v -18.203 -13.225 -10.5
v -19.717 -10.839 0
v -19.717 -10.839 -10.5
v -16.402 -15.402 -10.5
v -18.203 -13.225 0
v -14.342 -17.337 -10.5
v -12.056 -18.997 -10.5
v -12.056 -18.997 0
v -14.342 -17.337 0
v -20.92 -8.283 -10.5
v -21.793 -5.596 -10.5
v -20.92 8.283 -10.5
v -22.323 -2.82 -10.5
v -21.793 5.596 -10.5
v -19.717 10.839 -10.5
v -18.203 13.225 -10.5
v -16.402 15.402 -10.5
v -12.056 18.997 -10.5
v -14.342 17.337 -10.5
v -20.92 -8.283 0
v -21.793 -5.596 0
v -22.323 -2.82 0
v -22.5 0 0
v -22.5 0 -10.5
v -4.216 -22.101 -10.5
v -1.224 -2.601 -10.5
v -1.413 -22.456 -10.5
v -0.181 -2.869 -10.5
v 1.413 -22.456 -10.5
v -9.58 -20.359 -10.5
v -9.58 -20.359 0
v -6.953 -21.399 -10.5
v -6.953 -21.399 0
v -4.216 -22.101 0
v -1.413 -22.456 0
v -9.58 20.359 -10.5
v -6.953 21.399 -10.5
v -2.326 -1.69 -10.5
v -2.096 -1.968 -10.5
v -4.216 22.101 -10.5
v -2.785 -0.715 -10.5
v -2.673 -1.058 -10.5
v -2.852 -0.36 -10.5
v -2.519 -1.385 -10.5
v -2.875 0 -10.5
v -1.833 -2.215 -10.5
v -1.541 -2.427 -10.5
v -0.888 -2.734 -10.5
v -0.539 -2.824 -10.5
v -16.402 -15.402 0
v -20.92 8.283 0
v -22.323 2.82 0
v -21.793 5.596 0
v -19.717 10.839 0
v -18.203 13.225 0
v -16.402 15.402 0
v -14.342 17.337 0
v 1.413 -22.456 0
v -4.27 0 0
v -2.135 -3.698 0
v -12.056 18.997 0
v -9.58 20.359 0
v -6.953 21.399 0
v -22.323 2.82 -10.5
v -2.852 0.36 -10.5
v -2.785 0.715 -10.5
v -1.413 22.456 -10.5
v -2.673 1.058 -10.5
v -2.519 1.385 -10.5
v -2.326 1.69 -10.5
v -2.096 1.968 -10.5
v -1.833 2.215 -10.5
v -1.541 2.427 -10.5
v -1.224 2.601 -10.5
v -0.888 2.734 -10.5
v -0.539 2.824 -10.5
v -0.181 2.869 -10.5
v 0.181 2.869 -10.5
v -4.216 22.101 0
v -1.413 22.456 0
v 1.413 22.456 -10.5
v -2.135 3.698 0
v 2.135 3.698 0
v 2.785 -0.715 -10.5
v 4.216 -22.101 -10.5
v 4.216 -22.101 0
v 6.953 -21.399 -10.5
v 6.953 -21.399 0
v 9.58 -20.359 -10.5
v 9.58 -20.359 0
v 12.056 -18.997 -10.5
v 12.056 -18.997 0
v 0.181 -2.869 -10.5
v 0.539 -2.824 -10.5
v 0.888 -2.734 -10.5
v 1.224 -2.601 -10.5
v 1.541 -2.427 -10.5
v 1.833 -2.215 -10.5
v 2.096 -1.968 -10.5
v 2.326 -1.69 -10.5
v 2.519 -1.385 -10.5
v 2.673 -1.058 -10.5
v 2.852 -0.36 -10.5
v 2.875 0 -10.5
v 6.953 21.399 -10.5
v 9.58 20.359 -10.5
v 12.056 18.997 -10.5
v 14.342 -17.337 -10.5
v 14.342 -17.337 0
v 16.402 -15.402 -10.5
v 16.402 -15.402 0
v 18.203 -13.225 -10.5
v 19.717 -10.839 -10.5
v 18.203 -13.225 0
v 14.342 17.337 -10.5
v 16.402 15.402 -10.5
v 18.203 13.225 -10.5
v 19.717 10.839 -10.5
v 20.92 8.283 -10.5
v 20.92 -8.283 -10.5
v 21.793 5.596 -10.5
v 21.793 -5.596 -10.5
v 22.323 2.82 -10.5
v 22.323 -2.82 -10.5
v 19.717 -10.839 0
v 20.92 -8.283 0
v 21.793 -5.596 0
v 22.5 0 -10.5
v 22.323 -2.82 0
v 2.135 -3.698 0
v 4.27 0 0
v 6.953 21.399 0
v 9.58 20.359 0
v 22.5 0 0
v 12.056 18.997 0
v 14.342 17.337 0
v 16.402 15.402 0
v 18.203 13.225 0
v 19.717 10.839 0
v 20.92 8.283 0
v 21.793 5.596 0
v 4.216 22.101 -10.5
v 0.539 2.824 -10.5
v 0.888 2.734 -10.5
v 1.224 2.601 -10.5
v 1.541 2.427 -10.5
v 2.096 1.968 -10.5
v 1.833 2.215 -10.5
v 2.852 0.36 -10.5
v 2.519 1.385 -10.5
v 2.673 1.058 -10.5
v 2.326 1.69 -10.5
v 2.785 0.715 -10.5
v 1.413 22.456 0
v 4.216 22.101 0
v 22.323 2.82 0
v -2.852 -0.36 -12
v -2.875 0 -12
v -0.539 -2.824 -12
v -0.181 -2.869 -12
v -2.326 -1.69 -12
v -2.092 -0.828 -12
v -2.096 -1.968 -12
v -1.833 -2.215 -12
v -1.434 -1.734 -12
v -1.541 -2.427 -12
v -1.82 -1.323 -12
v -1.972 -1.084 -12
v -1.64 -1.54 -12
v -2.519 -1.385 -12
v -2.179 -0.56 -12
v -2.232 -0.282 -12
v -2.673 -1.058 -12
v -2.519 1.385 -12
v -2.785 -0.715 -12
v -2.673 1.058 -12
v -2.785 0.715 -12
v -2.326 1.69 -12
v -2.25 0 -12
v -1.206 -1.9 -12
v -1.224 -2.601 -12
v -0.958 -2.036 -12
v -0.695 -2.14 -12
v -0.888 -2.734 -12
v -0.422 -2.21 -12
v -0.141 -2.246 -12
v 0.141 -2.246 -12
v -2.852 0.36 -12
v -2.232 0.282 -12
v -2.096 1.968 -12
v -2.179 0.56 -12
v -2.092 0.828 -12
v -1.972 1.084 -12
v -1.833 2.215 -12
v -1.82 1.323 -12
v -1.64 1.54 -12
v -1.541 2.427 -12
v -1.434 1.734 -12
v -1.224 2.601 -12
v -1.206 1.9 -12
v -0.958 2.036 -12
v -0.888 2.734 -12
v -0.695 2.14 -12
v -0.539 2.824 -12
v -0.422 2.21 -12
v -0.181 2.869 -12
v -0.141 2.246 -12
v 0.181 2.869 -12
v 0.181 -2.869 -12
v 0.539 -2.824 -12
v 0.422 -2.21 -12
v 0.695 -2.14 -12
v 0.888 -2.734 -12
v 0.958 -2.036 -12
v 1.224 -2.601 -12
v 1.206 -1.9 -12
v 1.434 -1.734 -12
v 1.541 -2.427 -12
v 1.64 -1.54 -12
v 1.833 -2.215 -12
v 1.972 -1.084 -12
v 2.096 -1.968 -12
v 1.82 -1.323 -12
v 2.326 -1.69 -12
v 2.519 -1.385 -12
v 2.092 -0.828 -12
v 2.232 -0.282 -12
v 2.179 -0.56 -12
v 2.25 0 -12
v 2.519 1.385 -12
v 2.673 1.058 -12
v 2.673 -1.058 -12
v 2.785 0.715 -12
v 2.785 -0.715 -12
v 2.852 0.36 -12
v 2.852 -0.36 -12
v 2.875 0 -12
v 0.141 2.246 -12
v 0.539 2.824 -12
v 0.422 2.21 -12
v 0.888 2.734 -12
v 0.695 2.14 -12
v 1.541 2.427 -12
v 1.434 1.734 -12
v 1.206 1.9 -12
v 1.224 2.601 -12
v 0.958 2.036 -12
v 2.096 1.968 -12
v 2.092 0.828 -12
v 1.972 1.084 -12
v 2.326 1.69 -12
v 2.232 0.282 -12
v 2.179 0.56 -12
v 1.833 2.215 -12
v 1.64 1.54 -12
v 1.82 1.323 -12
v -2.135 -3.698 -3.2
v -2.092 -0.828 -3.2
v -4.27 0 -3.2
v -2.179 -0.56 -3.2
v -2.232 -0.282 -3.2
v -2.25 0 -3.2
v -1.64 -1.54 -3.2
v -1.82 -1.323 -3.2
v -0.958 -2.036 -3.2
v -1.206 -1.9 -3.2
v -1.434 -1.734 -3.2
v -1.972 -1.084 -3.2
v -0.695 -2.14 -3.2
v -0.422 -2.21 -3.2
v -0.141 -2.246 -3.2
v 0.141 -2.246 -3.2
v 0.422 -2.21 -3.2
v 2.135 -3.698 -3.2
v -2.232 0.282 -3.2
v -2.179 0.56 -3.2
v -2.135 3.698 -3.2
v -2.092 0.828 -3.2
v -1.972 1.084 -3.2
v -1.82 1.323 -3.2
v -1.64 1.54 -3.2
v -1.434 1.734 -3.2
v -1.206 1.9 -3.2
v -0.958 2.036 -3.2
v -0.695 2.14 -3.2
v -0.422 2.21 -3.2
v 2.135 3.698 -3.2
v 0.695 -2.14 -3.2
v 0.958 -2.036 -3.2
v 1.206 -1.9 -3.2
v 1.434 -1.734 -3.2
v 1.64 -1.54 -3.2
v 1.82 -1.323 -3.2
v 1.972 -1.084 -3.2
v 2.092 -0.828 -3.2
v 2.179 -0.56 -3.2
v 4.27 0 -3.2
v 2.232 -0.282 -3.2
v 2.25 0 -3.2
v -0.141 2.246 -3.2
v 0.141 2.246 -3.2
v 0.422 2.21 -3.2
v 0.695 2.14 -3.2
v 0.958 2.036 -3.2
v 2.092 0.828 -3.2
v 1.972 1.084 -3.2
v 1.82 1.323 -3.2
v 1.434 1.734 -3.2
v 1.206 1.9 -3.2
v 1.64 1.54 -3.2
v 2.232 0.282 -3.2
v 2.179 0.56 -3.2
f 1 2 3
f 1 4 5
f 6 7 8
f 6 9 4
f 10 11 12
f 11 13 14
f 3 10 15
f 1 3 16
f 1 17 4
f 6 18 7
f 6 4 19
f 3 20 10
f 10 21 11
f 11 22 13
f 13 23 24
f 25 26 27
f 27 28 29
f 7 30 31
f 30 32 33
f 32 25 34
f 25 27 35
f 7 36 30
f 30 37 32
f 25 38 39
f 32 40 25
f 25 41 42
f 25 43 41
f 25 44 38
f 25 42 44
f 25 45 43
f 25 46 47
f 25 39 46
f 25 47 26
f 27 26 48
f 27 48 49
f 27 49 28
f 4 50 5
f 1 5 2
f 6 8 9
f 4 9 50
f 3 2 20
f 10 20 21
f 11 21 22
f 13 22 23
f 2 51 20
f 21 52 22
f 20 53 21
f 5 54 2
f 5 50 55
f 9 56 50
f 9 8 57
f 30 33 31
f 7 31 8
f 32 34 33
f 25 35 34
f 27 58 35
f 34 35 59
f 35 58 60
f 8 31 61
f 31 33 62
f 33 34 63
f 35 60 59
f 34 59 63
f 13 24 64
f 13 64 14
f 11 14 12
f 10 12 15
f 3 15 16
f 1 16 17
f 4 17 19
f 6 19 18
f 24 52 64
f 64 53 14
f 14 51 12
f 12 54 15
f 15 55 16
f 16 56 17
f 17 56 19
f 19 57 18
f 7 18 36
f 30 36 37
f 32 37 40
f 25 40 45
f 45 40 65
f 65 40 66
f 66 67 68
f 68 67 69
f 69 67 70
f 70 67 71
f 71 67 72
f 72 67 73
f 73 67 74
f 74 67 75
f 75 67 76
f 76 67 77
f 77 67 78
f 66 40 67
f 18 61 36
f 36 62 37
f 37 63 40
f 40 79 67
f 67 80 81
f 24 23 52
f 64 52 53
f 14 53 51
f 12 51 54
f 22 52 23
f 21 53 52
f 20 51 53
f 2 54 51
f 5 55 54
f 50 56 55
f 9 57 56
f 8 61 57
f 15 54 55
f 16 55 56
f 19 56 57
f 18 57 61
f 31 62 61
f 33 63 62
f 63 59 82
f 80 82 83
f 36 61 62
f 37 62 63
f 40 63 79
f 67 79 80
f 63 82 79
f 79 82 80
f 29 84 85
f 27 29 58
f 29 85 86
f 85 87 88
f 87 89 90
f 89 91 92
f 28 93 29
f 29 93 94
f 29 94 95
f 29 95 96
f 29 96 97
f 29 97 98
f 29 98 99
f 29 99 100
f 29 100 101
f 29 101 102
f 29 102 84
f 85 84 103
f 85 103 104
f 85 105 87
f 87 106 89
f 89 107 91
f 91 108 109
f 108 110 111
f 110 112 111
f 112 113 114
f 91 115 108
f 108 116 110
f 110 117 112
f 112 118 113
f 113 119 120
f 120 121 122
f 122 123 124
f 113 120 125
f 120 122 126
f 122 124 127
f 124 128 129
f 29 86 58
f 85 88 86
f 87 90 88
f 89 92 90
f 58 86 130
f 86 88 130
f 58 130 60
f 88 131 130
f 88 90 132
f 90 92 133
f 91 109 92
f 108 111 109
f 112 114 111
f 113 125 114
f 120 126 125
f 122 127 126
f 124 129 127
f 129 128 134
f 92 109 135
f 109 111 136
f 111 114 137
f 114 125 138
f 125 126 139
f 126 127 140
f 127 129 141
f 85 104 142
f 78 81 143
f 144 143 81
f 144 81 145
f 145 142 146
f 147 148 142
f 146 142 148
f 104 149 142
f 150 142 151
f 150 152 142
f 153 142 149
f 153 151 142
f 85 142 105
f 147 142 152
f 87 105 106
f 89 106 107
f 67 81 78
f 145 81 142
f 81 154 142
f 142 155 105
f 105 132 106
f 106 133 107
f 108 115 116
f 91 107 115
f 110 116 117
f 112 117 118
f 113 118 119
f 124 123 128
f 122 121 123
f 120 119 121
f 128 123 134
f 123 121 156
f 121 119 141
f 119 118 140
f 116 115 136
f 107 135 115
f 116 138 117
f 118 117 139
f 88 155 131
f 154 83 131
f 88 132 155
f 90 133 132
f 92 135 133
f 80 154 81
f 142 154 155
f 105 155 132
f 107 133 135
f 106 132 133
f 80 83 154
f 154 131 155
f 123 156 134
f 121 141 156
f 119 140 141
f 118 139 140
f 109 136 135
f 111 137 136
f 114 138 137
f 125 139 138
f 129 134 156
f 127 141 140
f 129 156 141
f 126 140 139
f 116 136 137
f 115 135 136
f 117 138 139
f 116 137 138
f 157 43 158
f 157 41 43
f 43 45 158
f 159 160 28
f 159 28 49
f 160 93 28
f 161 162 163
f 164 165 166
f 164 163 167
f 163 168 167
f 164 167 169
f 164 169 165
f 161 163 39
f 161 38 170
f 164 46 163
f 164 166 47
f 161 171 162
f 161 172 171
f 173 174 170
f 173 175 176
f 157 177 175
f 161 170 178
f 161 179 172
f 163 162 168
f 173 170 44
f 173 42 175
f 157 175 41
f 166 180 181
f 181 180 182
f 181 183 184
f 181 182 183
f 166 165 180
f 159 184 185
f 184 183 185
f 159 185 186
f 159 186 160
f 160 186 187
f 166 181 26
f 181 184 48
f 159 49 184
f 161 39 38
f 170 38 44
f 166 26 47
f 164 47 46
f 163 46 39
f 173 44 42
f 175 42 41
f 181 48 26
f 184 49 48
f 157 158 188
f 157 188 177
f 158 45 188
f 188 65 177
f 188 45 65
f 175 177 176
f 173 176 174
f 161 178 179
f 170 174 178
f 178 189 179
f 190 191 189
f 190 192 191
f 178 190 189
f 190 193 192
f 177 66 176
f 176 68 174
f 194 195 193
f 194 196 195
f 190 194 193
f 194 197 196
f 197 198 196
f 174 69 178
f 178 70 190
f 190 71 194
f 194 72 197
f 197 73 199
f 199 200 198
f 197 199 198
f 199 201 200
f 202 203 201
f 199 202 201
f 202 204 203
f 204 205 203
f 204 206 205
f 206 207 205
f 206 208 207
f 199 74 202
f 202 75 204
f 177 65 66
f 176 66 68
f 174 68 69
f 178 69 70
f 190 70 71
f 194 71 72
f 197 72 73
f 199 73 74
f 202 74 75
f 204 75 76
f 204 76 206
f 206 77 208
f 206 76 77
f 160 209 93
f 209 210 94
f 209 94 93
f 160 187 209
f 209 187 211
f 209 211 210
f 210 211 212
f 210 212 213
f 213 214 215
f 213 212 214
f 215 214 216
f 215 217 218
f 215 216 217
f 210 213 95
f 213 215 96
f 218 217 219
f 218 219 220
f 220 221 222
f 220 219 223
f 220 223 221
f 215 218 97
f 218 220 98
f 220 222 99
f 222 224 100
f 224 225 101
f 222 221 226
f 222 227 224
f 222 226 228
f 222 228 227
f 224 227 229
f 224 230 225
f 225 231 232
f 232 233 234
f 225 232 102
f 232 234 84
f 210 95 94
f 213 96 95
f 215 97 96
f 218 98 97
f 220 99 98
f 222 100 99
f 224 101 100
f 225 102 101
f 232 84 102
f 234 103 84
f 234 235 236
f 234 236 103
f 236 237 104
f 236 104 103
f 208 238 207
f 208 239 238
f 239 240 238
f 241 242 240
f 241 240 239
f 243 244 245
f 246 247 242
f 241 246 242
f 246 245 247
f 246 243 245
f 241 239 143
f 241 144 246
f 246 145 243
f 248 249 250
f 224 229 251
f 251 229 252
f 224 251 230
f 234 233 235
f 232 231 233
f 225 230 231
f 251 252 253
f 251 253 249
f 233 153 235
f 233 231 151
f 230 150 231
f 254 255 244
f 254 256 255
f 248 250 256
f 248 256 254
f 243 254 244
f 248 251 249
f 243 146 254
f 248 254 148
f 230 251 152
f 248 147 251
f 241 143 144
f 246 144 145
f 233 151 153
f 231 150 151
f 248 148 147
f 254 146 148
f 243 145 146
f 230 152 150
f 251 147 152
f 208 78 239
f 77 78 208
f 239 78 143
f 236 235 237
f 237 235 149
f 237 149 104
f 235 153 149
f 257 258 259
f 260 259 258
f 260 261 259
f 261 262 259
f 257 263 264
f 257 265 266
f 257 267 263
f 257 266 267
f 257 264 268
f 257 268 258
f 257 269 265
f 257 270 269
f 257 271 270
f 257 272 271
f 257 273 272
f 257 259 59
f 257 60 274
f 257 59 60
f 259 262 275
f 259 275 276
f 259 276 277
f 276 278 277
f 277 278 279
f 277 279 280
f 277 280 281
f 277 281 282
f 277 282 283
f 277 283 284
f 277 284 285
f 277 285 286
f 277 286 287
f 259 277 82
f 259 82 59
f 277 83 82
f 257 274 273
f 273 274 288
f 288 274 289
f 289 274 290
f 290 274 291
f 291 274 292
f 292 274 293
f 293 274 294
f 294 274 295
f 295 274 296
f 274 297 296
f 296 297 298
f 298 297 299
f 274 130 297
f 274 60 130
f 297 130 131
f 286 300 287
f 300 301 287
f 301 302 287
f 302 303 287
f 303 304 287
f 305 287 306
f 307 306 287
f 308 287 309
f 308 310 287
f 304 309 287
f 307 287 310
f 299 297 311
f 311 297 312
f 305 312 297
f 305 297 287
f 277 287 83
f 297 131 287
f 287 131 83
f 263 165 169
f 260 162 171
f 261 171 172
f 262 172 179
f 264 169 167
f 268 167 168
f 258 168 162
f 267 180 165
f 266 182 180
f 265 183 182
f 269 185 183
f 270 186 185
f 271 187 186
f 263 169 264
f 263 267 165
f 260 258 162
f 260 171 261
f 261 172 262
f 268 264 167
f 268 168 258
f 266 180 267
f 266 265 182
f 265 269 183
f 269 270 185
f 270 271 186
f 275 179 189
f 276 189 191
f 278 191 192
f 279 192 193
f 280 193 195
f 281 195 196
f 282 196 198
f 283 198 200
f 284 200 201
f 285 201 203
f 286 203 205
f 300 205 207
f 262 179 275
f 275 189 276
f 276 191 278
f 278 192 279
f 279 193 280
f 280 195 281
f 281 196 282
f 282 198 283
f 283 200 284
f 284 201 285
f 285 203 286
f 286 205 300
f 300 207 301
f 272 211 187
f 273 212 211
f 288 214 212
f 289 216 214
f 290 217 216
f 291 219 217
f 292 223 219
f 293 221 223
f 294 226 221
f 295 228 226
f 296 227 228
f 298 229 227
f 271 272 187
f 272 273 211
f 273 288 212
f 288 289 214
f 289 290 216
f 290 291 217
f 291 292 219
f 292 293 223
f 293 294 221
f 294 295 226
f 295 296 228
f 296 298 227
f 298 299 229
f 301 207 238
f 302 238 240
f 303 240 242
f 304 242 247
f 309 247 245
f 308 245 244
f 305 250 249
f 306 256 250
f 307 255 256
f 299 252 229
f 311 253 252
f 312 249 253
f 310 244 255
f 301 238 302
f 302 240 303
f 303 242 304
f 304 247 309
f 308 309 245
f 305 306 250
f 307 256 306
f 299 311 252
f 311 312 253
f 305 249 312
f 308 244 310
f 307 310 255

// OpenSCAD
$fn = 50;

difference() {
	union() {
		translate(v = [0, 0, -10.5]) {
			cylinder(h = 10.5, r = 22.5);
		}
		#translate(v = [0, 0, -12.0]) {
			cylinder(h = 12, r = 2.875);
		}
	}
	union() {
		translate(v = [0, 0, 0]) {
			rotate(a = [0, 0, 0]) {
				difference() {
					union() {
						translate(v = [0, 0, -3.2]) {
							linear_extrude(height = 3.2) {
								polygon(points = [[4.2698, 0.0], [2.1349000000000005, 3.697755269078796], [-2.134899999999999, 3.6977552690787965], [-4.2698, 5.228996902999369e-16], [-2.134900000000002, -3.6977552690787956], [2.1348999999999974, -3.697755269078798]]);
							}
						}
					}
					union();
				}
			}
		}
		#translate(v = [0, 0, -100.0]) {
			cylinder(h = 200, r = 2.25);
		}
	}
}
